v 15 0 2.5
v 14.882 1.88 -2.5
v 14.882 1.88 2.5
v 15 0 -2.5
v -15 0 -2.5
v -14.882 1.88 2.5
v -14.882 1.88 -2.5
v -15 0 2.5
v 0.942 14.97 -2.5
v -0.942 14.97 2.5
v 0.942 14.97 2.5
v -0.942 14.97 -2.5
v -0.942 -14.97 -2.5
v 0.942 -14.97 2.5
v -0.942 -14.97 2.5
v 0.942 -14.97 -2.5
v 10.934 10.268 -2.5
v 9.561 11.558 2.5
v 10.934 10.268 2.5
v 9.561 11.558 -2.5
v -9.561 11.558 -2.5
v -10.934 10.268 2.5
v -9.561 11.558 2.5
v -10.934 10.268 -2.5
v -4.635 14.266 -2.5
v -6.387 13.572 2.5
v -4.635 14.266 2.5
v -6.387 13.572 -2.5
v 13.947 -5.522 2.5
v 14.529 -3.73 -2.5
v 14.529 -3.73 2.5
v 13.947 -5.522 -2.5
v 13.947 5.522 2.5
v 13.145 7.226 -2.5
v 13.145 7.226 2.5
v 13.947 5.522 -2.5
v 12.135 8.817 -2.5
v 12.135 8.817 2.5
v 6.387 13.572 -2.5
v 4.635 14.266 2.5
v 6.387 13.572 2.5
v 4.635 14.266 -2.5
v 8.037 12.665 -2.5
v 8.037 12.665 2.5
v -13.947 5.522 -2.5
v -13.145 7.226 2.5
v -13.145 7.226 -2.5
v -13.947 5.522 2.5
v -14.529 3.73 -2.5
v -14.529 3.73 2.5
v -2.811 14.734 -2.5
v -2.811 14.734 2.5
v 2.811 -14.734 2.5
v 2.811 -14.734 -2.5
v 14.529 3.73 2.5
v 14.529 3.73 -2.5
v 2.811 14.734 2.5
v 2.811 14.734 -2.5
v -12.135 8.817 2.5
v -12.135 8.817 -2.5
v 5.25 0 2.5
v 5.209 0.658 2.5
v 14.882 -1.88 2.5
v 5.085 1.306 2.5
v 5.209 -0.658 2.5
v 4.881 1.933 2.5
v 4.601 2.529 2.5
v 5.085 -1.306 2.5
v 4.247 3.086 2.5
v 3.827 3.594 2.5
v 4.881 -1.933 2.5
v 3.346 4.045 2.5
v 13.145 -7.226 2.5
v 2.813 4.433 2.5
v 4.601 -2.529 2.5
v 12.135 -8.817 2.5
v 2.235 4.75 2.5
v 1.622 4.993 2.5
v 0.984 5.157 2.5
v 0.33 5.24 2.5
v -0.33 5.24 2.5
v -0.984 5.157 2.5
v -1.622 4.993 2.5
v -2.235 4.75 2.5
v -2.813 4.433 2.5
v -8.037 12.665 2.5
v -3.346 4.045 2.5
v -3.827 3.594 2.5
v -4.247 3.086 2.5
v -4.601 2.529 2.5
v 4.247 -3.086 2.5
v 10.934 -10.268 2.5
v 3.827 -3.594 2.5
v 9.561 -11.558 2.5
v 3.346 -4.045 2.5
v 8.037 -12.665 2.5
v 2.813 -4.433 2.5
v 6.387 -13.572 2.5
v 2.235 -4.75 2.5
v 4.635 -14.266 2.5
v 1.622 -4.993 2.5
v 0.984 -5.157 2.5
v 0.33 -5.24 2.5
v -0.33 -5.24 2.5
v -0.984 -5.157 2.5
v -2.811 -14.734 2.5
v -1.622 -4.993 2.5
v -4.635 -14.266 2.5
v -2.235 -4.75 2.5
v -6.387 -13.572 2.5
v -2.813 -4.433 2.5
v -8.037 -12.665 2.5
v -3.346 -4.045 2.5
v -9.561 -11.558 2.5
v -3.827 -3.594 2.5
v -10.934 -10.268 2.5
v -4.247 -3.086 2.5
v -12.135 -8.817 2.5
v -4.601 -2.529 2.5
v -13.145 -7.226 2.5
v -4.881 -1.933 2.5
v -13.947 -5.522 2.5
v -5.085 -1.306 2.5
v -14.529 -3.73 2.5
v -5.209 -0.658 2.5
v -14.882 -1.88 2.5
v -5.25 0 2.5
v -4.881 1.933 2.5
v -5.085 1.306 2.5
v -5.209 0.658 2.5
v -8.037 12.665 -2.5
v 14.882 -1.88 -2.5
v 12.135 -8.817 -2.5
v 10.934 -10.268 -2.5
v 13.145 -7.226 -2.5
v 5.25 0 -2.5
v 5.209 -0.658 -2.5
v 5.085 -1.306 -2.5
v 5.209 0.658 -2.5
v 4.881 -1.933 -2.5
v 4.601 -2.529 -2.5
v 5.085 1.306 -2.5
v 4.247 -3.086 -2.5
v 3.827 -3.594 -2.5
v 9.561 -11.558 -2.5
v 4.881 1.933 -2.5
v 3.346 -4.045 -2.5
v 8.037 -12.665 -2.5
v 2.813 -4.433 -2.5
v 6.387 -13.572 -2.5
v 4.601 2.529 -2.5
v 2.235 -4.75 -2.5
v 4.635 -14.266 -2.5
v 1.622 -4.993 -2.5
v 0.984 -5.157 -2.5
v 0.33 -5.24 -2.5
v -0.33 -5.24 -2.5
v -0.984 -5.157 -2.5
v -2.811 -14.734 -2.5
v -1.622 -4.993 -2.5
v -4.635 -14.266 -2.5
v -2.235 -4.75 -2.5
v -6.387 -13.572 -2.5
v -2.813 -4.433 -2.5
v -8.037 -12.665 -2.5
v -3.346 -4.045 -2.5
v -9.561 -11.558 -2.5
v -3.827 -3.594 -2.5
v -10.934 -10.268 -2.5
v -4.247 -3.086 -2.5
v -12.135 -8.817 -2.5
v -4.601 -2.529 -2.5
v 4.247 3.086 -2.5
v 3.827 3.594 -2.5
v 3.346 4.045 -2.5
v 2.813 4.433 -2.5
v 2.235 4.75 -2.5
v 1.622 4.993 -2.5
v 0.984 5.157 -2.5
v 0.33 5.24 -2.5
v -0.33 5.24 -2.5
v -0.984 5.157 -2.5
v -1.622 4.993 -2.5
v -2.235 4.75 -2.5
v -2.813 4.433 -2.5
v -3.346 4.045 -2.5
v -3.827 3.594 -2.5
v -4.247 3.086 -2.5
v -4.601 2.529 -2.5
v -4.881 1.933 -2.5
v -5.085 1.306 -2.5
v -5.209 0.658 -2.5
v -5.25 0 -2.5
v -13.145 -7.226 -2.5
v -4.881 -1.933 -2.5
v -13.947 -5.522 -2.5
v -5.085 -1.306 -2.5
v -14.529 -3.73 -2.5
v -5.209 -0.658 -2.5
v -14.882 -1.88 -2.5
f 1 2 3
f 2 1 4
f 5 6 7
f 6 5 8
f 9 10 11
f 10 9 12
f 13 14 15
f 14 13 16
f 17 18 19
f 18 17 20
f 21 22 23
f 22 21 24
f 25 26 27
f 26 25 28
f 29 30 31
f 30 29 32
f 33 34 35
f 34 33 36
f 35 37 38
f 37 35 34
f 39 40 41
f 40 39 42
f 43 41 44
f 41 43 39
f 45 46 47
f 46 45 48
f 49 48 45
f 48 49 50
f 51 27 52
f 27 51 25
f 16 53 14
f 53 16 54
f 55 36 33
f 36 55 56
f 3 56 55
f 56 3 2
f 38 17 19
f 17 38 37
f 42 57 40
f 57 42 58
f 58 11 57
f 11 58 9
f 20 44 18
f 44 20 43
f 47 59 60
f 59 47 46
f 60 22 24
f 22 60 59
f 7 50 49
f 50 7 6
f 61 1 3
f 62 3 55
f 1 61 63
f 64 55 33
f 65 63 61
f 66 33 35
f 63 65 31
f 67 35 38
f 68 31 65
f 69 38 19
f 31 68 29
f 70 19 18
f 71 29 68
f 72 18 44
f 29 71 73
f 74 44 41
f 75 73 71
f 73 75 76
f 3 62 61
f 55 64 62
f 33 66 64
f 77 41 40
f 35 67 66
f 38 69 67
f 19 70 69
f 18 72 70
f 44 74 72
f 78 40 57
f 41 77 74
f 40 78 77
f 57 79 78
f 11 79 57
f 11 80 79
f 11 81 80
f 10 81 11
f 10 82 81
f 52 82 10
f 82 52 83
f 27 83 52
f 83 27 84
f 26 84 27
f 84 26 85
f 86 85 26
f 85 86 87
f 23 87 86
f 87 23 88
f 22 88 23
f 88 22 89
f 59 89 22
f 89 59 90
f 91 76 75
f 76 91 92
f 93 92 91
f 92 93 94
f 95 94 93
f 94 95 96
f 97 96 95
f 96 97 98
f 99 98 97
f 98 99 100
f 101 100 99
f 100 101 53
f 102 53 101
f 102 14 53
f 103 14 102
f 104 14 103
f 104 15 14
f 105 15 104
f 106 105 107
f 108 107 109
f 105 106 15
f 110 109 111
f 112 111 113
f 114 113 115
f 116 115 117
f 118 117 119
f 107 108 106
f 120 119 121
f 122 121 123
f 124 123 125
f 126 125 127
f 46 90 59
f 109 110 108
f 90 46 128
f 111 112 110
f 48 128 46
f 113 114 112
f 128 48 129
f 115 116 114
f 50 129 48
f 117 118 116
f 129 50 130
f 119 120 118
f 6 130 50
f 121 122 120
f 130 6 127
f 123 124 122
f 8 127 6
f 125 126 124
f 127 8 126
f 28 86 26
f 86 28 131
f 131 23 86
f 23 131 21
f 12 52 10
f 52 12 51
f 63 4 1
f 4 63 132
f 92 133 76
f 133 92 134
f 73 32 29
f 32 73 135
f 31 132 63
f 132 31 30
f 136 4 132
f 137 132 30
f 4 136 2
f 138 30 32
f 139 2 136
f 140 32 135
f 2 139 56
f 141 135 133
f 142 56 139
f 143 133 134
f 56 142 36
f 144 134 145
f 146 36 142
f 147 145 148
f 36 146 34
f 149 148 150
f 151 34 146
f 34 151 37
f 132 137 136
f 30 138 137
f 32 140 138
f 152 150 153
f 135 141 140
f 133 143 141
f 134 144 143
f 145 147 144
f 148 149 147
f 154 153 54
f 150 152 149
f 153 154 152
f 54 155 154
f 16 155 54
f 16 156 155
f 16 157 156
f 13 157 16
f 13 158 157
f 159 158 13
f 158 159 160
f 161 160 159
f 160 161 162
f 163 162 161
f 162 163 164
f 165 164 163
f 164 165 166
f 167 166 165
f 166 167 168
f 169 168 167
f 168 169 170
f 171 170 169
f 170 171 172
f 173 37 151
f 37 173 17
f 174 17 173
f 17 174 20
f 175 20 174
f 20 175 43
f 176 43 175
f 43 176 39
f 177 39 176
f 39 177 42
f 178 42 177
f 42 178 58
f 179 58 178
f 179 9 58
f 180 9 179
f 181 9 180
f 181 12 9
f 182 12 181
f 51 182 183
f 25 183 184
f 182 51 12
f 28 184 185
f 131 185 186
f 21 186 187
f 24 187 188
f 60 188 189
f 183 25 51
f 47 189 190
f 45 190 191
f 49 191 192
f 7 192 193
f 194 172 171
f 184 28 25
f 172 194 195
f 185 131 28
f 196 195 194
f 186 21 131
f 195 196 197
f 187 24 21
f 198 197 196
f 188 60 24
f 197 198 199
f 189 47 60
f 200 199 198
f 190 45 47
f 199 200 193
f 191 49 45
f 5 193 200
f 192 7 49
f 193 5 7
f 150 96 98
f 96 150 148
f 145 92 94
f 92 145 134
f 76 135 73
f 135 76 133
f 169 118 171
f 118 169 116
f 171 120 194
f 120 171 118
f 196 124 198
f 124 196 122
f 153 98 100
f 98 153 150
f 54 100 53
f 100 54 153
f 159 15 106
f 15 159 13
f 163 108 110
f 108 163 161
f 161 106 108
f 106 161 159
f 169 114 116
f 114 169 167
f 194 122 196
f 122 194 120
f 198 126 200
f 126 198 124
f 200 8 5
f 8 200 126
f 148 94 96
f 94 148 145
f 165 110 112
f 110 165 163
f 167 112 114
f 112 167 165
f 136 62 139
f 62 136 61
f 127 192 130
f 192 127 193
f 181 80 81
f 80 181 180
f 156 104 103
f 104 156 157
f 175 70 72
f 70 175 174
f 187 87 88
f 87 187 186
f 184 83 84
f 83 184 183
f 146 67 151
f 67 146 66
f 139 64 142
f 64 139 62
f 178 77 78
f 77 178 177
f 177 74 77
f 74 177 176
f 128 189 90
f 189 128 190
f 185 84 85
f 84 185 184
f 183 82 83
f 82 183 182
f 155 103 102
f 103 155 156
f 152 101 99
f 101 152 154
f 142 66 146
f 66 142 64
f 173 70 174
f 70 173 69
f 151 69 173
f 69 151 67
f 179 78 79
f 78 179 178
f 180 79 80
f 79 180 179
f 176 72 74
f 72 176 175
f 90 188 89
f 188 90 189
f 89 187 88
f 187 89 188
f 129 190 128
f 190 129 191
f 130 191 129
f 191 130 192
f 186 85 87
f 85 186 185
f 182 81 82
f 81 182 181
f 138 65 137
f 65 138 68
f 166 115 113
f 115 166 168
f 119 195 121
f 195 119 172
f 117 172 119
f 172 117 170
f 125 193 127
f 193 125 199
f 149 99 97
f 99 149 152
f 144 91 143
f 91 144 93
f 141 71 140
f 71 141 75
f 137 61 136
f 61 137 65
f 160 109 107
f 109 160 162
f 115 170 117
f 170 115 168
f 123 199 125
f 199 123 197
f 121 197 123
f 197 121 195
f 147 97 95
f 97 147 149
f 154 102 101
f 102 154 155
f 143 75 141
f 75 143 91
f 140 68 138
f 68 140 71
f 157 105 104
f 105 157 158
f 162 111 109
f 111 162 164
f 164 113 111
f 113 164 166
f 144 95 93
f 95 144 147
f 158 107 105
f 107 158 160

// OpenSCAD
$fn = 50;


difference() {
	union() {
		translate(v = [0, 0, -2.5000000000]) {
			cylinder(h = 5, r = 15.0000000000);
		}
	}
	union() {
		translate(v = [0, 0, -100.0000000000]) {
			cylinder(h = 200, r = 5.2500000000);
		}
	}
}
